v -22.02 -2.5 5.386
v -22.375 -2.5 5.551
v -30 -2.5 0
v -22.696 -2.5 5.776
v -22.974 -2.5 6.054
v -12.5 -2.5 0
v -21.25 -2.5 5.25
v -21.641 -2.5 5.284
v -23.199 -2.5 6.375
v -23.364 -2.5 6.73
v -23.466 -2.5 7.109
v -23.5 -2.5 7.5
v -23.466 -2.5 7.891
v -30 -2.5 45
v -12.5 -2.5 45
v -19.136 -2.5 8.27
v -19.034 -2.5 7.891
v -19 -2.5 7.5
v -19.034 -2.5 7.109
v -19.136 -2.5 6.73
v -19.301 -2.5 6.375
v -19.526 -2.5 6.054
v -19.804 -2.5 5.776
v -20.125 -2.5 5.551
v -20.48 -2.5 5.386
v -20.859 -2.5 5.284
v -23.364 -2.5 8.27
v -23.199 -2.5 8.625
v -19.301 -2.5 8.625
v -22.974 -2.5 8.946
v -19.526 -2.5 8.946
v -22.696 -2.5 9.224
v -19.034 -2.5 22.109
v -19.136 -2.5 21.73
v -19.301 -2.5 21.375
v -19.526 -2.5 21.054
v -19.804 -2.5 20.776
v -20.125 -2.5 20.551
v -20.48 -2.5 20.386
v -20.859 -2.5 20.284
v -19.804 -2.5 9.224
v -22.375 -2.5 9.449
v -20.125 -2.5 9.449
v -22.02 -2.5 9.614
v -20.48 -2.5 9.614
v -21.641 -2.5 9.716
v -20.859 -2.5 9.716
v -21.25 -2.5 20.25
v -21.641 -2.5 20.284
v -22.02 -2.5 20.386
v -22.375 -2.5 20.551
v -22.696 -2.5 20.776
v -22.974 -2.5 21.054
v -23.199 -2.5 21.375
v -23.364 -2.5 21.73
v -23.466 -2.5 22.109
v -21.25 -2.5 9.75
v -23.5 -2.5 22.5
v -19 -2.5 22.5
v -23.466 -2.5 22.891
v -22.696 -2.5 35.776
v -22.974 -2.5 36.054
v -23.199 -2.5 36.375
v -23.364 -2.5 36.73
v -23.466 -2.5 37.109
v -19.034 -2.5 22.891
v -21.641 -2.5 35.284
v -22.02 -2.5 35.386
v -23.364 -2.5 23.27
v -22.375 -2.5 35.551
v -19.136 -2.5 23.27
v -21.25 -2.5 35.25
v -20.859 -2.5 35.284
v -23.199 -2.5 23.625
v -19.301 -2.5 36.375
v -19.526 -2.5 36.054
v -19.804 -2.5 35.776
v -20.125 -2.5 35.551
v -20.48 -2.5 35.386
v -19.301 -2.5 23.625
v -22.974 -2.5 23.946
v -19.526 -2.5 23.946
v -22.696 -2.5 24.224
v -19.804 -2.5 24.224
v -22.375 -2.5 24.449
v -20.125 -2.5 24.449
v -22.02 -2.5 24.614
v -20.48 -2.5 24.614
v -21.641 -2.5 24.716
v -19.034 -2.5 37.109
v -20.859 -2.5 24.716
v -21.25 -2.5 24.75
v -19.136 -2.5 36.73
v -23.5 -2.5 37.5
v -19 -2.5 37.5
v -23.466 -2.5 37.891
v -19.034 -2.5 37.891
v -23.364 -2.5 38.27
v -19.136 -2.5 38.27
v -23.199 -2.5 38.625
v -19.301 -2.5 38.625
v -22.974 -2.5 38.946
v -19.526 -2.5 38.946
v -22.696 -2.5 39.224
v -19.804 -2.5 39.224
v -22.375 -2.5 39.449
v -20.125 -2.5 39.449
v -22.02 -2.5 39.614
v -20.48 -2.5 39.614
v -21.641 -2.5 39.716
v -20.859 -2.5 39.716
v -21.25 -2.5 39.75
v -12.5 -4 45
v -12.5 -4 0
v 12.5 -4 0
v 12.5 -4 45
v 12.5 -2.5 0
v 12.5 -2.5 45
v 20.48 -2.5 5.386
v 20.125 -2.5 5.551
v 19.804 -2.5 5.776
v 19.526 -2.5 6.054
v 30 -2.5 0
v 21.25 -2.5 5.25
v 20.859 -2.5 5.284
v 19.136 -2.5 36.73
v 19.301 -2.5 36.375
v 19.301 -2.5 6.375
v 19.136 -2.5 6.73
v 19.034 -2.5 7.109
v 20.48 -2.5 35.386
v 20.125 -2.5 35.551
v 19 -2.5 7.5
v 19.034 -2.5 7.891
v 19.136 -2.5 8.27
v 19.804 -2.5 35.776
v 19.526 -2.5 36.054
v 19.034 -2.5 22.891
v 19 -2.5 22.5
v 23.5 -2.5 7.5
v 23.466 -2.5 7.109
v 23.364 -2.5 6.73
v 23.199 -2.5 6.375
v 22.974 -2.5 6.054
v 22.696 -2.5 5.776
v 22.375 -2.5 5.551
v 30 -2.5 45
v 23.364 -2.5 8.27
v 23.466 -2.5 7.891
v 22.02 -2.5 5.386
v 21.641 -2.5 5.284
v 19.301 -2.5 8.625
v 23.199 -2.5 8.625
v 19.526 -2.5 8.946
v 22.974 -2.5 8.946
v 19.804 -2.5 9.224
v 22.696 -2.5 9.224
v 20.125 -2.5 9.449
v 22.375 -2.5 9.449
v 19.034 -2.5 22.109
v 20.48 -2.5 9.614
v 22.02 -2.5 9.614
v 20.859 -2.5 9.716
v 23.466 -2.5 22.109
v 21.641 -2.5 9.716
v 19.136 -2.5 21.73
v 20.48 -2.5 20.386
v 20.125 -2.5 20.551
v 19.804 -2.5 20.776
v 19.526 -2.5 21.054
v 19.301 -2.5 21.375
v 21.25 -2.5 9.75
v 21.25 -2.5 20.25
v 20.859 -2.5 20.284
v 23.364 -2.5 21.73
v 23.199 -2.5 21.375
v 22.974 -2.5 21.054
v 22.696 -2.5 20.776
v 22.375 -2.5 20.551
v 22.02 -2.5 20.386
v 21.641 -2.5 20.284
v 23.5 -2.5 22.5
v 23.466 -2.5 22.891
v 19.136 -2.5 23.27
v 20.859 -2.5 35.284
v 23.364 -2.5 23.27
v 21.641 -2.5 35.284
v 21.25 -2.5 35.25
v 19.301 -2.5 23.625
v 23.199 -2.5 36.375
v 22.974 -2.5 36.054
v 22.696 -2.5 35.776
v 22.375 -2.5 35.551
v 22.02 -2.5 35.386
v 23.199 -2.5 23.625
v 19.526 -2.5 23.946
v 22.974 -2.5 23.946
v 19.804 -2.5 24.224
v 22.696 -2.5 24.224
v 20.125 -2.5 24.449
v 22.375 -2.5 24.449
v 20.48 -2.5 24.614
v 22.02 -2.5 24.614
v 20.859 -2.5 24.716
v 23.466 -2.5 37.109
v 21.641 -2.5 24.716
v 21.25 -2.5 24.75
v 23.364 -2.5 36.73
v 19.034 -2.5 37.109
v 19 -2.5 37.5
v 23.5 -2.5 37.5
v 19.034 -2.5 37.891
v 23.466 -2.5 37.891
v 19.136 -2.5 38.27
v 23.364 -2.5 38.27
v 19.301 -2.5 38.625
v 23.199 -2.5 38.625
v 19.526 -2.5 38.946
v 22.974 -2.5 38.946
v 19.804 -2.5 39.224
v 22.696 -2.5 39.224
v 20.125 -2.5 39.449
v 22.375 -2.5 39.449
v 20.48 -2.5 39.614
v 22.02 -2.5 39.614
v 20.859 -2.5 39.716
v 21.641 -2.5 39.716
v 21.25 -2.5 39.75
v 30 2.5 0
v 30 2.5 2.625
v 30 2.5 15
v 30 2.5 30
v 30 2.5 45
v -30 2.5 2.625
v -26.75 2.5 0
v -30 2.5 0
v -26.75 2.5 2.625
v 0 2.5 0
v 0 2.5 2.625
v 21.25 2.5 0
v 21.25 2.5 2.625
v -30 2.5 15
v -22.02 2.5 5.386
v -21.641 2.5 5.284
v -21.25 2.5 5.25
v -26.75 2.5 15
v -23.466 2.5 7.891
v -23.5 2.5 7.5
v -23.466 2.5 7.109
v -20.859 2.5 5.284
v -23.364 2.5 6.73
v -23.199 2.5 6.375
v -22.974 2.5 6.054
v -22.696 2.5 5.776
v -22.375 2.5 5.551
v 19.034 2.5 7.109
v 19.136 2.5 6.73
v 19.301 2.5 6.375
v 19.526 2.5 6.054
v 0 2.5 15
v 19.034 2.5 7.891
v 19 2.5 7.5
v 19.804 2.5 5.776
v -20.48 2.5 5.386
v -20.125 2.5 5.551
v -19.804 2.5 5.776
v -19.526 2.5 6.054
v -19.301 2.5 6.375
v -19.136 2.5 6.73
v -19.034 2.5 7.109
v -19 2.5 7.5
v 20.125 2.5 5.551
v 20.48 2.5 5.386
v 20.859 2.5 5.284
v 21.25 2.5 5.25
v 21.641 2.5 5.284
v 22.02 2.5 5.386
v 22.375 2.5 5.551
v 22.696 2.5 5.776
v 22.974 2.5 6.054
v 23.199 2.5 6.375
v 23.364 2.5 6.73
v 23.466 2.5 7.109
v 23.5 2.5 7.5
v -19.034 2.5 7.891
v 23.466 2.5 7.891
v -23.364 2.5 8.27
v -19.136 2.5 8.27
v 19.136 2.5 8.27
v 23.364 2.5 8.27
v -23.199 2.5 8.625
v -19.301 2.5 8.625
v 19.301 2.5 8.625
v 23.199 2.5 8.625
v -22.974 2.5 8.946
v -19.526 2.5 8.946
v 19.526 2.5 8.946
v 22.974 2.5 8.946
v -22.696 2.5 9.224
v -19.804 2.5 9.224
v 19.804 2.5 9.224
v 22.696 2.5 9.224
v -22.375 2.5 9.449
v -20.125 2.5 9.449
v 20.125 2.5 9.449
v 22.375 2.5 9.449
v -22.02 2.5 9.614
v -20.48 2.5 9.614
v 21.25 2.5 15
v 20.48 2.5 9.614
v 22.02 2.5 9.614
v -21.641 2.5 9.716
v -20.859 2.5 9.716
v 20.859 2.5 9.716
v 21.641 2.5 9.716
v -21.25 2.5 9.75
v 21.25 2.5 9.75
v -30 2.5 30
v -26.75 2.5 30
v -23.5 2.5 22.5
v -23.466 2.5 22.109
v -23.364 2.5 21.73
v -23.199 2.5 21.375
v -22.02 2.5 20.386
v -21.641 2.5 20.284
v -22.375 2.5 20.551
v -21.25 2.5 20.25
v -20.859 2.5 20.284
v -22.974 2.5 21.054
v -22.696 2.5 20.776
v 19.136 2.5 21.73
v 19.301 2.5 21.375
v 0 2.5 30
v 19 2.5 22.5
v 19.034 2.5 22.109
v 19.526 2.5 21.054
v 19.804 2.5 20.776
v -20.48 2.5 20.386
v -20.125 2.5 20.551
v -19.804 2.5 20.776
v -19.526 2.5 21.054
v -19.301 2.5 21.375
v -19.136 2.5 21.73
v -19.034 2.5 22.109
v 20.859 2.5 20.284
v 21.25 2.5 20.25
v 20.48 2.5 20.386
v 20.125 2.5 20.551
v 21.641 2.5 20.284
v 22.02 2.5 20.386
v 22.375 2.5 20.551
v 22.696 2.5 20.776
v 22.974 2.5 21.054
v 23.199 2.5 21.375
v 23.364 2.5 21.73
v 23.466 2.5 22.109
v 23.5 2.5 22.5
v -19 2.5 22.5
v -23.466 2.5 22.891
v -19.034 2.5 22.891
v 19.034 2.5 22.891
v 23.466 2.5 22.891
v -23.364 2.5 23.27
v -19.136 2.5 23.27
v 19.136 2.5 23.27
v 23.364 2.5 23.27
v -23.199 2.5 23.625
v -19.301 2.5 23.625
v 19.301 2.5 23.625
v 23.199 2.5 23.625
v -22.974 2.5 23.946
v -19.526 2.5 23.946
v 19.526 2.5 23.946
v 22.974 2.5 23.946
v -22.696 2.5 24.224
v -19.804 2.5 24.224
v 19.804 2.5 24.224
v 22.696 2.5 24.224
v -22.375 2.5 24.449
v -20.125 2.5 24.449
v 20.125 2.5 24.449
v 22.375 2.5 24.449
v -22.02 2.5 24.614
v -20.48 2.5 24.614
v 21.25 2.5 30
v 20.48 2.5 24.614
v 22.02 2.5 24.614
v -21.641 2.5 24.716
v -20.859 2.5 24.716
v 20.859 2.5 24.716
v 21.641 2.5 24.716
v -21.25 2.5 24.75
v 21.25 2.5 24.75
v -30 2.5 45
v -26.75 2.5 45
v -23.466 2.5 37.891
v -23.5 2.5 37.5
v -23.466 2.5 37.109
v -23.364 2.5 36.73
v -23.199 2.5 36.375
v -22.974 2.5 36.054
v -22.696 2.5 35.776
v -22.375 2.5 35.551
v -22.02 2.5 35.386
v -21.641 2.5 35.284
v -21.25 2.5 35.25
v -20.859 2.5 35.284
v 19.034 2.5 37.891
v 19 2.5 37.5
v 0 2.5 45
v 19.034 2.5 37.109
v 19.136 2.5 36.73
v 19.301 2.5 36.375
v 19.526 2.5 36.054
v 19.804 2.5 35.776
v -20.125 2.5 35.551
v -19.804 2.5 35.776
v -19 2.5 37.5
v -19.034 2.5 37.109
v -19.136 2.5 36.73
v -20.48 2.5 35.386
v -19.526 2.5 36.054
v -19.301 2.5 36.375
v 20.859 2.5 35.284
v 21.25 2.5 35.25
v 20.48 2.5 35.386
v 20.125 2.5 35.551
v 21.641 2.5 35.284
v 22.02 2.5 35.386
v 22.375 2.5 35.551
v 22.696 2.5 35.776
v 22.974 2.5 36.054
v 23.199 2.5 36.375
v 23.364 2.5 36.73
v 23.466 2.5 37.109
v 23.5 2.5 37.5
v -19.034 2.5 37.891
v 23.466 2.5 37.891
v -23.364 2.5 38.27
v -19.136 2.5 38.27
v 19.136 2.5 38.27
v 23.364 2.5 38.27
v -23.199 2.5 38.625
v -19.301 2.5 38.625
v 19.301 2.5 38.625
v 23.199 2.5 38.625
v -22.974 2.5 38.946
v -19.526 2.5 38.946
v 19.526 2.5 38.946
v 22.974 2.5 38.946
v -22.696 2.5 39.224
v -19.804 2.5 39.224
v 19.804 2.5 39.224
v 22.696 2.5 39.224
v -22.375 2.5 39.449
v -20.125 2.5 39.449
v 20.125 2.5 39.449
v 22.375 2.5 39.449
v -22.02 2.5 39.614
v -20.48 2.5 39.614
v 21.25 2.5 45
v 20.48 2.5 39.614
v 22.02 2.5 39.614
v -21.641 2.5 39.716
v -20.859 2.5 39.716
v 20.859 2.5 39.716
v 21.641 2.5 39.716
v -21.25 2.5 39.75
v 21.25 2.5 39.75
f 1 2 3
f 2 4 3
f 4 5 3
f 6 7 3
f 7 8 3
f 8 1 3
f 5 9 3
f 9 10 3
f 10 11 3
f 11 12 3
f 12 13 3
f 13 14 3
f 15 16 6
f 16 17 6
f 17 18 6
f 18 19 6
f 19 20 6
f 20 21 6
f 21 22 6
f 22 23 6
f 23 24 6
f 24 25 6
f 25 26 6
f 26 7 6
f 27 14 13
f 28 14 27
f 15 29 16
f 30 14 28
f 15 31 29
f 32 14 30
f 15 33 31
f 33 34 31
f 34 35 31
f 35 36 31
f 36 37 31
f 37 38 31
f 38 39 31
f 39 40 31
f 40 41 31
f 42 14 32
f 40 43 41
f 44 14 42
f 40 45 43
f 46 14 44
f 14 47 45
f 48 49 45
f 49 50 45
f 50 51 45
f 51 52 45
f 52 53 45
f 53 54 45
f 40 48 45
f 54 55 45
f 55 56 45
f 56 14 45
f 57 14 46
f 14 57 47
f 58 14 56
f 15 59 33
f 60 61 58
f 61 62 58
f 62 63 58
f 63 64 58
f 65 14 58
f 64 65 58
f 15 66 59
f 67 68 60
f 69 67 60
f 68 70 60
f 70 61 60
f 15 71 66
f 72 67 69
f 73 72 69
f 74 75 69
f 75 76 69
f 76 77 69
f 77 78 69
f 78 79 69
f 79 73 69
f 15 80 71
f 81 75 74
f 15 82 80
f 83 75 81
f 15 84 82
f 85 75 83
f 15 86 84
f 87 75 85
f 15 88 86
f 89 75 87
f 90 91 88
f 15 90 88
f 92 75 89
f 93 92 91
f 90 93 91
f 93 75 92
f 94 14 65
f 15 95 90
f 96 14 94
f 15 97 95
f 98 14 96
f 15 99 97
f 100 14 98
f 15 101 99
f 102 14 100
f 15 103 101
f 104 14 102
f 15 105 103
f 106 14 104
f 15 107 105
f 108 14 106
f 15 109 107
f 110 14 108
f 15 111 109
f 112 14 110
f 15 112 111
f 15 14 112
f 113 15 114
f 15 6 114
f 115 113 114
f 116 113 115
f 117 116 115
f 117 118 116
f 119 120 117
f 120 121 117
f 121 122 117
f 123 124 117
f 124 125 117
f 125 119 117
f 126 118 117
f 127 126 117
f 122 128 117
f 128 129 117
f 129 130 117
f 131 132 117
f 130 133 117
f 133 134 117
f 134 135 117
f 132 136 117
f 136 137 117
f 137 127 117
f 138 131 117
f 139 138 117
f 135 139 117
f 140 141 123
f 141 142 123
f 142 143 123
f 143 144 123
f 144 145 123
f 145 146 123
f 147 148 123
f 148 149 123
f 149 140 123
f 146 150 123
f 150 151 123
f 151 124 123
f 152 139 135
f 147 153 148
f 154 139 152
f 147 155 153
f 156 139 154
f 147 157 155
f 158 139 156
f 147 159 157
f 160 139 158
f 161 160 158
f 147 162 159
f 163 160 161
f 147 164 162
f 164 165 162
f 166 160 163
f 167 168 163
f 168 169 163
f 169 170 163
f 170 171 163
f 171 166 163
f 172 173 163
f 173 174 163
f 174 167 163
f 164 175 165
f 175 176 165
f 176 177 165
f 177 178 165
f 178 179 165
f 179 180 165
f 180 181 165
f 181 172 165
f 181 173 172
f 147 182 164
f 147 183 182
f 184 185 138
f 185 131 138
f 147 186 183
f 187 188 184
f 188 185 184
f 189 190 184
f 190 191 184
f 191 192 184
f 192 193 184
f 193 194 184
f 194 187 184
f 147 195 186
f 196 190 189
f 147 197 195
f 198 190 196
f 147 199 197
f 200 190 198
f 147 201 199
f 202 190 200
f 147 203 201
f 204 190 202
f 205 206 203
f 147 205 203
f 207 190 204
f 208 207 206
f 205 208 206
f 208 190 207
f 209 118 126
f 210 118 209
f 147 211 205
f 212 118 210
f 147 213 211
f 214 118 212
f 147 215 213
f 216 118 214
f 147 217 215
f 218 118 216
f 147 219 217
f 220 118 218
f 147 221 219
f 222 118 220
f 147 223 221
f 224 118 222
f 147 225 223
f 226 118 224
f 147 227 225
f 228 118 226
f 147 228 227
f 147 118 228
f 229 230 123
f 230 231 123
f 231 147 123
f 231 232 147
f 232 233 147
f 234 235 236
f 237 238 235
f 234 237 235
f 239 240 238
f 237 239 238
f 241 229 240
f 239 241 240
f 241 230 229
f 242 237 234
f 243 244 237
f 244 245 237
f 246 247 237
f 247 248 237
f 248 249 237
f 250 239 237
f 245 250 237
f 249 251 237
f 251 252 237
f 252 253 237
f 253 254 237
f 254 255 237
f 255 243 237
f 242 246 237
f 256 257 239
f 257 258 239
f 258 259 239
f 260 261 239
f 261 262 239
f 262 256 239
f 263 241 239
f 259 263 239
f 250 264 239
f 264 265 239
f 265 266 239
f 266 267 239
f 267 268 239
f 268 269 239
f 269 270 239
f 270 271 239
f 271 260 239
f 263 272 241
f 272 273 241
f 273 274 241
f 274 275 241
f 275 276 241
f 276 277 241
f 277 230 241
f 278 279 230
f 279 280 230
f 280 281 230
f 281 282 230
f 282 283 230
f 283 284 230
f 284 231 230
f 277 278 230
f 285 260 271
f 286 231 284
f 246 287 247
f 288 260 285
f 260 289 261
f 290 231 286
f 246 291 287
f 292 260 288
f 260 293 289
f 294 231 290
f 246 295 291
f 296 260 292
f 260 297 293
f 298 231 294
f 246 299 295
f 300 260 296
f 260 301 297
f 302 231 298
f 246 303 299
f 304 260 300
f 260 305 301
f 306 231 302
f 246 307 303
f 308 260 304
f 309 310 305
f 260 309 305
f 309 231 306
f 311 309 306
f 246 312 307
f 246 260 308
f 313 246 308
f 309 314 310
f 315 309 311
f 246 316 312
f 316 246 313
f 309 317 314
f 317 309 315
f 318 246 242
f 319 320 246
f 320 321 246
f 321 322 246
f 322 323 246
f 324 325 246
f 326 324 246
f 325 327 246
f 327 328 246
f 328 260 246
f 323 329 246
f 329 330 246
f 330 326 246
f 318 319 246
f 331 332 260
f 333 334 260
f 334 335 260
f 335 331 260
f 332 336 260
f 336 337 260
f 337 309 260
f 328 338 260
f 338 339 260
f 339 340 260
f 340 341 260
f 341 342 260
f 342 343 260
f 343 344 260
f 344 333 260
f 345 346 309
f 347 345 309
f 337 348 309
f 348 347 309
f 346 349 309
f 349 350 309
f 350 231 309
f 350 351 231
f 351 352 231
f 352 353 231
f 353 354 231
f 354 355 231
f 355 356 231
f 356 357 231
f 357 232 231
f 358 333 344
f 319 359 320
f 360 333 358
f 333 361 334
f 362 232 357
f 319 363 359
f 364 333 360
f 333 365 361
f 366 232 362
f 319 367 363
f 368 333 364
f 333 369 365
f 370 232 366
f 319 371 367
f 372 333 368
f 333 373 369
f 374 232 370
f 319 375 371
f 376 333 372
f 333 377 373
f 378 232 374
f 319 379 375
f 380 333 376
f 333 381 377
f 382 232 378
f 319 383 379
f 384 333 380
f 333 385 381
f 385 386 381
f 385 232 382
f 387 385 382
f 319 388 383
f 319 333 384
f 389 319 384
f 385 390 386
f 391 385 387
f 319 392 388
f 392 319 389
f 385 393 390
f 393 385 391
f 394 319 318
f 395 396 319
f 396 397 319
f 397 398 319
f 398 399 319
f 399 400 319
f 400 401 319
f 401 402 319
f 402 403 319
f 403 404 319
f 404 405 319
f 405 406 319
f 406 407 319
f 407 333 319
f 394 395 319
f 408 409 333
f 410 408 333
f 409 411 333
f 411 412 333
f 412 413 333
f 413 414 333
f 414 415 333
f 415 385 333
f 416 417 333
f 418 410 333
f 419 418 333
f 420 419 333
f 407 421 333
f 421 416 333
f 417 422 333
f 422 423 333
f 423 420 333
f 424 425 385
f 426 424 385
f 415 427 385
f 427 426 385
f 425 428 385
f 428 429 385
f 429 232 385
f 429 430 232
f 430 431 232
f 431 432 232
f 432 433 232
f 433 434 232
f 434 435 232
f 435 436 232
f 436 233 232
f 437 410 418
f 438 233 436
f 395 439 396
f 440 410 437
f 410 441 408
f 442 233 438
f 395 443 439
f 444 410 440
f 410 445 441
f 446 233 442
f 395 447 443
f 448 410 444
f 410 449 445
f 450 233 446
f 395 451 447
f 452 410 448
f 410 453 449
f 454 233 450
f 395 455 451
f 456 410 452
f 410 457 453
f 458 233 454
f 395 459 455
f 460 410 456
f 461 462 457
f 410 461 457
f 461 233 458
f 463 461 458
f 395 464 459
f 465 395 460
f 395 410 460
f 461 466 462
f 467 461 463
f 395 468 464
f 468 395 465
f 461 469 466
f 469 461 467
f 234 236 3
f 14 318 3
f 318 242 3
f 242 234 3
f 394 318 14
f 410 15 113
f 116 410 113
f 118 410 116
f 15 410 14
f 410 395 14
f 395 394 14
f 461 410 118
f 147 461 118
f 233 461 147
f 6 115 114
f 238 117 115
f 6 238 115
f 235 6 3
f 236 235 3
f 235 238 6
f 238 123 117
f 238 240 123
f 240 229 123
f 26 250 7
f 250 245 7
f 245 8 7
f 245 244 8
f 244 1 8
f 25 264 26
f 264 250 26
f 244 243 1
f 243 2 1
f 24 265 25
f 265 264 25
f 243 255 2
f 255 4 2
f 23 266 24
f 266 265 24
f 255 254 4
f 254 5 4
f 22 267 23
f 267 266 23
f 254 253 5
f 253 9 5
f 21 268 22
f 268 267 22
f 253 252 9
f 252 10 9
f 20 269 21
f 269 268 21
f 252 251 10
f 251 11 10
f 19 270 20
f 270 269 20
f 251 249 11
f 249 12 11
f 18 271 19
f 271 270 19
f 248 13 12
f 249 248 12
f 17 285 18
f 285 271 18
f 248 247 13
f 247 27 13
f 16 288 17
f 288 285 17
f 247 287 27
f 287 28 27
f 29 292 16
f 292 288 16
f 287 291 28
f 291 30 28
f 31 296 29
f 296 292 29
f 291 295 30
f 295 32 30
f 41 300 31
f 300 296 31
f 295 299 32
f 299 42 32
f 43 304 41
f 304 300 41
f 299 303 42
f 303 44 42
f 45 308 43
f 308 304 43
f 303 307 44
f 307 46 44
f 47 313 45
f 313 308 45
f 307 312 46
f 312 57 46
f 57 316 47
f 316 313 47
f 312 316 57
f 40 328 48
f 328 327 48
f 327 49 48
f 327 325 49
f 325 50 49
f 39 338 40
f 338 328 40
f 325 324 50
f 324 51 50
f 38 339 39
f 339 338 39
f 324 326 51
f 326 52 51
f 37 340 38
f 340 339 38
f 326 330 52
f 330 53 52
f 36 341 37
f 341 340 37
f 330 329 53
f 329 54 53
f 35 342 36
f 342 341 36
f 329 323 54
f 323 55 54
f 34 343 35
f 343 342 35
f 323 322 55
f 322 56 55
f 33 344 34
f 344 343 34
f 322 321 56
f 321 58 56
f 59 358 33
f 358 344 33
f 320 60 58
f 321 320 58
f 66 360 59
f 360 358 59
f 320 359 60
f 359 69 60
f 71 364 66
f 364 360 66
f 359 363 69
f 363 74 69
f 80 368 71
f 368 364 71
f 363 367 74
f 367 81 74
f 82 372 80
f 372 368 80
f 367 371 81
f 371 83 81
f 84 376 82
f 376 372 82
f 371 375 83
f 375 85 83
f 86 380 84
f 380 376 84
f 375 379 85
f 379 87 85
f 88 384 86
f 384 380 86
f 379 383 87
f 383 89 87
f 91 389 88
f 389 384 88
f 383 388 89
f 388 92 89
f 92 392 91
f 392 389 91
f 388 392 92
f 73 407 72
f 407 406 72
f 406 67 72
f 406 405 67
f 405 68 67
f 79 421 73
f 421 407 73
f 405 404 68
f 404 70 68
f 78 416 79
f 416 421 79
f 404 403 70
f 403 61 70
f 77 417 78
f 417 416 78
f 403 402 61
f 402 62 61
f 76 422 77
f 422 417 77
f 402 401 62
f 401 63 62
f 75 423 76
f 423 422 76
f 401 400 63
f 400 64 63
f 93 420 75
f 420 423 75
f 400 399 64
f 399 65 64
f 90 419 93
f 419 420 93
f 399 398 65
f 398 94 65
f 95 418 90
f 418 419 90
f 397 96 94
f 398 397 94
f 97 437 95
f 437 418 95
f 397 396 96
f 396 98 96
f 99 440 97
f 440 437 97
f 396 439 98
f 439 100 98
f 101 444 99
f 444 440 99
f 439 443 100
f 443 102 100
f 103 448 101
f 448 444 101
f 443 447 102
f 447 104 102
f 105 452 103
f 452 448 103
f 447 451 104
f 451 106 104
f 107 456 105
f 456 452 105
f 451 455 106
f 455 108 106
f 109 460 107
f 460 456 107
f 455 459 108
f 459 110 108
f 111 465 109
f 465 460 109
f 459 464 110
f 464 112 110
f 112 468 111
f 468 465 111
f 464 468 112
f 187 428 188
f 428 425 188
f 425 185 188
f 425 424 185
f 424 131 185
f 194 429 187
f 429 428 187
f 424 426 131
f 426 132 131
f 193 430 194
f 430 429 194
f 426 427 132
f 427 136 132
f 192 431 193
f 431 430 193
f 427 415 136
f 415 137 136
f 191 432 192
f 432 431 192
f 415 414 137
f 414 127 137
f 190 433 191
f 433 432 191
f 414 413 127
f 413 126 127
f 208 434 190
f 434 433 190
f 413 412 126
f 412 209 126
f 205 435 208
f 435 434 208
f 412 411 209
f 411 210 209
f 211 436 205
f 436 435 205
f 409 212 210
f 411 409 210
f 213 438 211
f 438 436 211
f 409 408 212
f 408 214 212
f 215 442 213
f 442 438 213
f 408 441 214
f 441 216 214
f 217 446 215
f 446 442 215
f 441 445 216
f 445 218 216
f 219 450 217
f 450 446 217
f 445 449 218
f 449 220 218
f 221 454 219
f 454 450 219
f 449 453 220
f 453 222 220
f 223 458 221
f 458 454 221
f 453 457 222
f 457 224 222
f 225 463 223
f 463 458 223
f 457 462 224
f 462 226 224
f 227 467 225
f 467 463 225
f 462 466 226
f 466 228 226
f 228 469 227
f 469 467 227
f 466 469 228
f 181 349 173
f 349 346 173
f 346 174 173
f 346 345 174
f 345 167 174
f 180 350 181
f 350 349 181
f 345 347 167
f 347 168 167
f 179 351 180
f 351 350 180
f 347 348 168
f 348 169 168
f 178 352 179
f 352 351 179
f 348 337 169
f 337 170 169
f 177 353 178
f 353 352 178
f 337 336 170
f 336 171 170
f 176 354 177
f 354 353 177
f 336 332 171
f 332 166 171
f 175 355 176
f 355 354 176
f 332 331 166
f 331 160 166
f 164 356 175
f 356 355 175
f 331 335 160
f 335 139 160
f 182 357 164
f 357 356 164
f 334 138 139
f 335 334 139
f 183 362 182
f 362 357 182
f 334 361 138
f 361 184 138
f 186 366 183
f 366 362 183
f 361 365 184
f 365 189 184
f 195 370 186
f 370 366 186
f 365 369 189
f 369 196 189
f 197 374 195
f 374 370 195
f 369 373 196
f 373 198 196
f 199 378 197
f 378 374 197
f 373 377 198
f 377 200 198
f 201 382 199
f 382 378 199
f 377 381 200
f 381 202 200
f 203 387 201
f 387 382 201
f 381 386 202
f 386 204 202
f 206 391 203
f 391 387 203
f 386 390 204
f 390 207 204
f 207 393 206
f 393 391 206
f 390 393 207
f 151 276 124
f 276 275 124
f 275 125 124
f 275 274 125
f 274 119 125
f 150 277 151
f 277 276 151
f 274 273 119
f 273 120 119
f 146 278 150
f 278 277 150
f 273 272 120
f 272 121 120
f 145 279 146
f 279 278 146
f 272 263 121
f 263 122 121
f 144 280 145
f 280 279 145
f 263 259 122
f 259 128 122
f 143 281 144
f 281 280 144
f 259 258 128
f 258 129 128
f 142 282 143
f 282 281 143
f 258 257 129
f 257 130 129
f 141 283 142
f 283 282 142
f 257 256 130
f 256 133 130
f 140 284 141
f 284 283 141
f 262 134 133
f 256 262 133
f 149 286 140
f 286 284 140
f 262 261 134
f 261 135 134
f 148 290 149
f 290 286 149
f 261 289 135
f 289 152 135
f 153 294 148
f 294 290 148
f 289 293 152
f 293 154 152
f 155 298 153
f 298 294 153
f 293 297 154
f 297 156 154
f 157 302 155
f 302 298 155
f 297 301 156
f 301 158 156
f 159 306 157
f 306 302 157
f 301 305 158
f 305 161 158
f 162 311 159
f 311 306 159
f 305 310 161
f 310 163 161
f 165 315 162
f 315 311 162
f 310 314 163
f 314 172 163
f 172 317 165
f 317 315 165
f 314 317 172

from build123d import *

# Parameters (mm, degrees)
BOSS_EXTRUDE1_DEPTH = 45
SKETCH2_R           = 2.25
CUT_EXTRUDE1_DEPTH  = 55.472470111


with BuildPart() as part:
    # Sketch1 → Boss-Extrude1 (new body)
    with BuildSketch(Plane.XY):
        Polygon((-12.5, -2.5), (-12.5, -4), (12.5, -4), (12.5, -2.5), (30, -2.5), (30, 2.5), (-30, 2.5), (-30, -2.5), align=None)
    extrude(amount=BOSS_EXTRUDE1_DEPTH)

    # Sketch2 → Cut-Extrude1 (cut, through all)
    with BuildSketch(Plane(origin=(0, 2.5, 0), x_dir=(1, 0, 0), z_dir=(0, 1, 0))):
        with Locations(Location((-21.25, -7.5, 0), (0, 0, 180))):
            Circle(SKETCH2_R)
        with Locations(Location((-21.25, -22.5, 0), (0, 0, 180))):
            Circle(SKETCH2_R)
        with Locations(Location((-21.25, -37.5, 0), (0, 0, 180))):
            Circle(SKETCH2_R)
        with Locations(Location((21.25, -37.5, 0), (0, 0, 180))):
            Circle(SKETCH2_R)
        with Locations(Location((21.25, -22.5, 0), (0, 0, 180))):
            Circle(SKETCH2_R)
        with Locations(Location((21.25, -7.5, 0), (0, 0, 180))):
            Circle(SKETCH2_R)
    extrude(amount=-CUT_EXTRUDE1_DEPTH, mode=Mode.SUBTRACT)


solid = part.part
